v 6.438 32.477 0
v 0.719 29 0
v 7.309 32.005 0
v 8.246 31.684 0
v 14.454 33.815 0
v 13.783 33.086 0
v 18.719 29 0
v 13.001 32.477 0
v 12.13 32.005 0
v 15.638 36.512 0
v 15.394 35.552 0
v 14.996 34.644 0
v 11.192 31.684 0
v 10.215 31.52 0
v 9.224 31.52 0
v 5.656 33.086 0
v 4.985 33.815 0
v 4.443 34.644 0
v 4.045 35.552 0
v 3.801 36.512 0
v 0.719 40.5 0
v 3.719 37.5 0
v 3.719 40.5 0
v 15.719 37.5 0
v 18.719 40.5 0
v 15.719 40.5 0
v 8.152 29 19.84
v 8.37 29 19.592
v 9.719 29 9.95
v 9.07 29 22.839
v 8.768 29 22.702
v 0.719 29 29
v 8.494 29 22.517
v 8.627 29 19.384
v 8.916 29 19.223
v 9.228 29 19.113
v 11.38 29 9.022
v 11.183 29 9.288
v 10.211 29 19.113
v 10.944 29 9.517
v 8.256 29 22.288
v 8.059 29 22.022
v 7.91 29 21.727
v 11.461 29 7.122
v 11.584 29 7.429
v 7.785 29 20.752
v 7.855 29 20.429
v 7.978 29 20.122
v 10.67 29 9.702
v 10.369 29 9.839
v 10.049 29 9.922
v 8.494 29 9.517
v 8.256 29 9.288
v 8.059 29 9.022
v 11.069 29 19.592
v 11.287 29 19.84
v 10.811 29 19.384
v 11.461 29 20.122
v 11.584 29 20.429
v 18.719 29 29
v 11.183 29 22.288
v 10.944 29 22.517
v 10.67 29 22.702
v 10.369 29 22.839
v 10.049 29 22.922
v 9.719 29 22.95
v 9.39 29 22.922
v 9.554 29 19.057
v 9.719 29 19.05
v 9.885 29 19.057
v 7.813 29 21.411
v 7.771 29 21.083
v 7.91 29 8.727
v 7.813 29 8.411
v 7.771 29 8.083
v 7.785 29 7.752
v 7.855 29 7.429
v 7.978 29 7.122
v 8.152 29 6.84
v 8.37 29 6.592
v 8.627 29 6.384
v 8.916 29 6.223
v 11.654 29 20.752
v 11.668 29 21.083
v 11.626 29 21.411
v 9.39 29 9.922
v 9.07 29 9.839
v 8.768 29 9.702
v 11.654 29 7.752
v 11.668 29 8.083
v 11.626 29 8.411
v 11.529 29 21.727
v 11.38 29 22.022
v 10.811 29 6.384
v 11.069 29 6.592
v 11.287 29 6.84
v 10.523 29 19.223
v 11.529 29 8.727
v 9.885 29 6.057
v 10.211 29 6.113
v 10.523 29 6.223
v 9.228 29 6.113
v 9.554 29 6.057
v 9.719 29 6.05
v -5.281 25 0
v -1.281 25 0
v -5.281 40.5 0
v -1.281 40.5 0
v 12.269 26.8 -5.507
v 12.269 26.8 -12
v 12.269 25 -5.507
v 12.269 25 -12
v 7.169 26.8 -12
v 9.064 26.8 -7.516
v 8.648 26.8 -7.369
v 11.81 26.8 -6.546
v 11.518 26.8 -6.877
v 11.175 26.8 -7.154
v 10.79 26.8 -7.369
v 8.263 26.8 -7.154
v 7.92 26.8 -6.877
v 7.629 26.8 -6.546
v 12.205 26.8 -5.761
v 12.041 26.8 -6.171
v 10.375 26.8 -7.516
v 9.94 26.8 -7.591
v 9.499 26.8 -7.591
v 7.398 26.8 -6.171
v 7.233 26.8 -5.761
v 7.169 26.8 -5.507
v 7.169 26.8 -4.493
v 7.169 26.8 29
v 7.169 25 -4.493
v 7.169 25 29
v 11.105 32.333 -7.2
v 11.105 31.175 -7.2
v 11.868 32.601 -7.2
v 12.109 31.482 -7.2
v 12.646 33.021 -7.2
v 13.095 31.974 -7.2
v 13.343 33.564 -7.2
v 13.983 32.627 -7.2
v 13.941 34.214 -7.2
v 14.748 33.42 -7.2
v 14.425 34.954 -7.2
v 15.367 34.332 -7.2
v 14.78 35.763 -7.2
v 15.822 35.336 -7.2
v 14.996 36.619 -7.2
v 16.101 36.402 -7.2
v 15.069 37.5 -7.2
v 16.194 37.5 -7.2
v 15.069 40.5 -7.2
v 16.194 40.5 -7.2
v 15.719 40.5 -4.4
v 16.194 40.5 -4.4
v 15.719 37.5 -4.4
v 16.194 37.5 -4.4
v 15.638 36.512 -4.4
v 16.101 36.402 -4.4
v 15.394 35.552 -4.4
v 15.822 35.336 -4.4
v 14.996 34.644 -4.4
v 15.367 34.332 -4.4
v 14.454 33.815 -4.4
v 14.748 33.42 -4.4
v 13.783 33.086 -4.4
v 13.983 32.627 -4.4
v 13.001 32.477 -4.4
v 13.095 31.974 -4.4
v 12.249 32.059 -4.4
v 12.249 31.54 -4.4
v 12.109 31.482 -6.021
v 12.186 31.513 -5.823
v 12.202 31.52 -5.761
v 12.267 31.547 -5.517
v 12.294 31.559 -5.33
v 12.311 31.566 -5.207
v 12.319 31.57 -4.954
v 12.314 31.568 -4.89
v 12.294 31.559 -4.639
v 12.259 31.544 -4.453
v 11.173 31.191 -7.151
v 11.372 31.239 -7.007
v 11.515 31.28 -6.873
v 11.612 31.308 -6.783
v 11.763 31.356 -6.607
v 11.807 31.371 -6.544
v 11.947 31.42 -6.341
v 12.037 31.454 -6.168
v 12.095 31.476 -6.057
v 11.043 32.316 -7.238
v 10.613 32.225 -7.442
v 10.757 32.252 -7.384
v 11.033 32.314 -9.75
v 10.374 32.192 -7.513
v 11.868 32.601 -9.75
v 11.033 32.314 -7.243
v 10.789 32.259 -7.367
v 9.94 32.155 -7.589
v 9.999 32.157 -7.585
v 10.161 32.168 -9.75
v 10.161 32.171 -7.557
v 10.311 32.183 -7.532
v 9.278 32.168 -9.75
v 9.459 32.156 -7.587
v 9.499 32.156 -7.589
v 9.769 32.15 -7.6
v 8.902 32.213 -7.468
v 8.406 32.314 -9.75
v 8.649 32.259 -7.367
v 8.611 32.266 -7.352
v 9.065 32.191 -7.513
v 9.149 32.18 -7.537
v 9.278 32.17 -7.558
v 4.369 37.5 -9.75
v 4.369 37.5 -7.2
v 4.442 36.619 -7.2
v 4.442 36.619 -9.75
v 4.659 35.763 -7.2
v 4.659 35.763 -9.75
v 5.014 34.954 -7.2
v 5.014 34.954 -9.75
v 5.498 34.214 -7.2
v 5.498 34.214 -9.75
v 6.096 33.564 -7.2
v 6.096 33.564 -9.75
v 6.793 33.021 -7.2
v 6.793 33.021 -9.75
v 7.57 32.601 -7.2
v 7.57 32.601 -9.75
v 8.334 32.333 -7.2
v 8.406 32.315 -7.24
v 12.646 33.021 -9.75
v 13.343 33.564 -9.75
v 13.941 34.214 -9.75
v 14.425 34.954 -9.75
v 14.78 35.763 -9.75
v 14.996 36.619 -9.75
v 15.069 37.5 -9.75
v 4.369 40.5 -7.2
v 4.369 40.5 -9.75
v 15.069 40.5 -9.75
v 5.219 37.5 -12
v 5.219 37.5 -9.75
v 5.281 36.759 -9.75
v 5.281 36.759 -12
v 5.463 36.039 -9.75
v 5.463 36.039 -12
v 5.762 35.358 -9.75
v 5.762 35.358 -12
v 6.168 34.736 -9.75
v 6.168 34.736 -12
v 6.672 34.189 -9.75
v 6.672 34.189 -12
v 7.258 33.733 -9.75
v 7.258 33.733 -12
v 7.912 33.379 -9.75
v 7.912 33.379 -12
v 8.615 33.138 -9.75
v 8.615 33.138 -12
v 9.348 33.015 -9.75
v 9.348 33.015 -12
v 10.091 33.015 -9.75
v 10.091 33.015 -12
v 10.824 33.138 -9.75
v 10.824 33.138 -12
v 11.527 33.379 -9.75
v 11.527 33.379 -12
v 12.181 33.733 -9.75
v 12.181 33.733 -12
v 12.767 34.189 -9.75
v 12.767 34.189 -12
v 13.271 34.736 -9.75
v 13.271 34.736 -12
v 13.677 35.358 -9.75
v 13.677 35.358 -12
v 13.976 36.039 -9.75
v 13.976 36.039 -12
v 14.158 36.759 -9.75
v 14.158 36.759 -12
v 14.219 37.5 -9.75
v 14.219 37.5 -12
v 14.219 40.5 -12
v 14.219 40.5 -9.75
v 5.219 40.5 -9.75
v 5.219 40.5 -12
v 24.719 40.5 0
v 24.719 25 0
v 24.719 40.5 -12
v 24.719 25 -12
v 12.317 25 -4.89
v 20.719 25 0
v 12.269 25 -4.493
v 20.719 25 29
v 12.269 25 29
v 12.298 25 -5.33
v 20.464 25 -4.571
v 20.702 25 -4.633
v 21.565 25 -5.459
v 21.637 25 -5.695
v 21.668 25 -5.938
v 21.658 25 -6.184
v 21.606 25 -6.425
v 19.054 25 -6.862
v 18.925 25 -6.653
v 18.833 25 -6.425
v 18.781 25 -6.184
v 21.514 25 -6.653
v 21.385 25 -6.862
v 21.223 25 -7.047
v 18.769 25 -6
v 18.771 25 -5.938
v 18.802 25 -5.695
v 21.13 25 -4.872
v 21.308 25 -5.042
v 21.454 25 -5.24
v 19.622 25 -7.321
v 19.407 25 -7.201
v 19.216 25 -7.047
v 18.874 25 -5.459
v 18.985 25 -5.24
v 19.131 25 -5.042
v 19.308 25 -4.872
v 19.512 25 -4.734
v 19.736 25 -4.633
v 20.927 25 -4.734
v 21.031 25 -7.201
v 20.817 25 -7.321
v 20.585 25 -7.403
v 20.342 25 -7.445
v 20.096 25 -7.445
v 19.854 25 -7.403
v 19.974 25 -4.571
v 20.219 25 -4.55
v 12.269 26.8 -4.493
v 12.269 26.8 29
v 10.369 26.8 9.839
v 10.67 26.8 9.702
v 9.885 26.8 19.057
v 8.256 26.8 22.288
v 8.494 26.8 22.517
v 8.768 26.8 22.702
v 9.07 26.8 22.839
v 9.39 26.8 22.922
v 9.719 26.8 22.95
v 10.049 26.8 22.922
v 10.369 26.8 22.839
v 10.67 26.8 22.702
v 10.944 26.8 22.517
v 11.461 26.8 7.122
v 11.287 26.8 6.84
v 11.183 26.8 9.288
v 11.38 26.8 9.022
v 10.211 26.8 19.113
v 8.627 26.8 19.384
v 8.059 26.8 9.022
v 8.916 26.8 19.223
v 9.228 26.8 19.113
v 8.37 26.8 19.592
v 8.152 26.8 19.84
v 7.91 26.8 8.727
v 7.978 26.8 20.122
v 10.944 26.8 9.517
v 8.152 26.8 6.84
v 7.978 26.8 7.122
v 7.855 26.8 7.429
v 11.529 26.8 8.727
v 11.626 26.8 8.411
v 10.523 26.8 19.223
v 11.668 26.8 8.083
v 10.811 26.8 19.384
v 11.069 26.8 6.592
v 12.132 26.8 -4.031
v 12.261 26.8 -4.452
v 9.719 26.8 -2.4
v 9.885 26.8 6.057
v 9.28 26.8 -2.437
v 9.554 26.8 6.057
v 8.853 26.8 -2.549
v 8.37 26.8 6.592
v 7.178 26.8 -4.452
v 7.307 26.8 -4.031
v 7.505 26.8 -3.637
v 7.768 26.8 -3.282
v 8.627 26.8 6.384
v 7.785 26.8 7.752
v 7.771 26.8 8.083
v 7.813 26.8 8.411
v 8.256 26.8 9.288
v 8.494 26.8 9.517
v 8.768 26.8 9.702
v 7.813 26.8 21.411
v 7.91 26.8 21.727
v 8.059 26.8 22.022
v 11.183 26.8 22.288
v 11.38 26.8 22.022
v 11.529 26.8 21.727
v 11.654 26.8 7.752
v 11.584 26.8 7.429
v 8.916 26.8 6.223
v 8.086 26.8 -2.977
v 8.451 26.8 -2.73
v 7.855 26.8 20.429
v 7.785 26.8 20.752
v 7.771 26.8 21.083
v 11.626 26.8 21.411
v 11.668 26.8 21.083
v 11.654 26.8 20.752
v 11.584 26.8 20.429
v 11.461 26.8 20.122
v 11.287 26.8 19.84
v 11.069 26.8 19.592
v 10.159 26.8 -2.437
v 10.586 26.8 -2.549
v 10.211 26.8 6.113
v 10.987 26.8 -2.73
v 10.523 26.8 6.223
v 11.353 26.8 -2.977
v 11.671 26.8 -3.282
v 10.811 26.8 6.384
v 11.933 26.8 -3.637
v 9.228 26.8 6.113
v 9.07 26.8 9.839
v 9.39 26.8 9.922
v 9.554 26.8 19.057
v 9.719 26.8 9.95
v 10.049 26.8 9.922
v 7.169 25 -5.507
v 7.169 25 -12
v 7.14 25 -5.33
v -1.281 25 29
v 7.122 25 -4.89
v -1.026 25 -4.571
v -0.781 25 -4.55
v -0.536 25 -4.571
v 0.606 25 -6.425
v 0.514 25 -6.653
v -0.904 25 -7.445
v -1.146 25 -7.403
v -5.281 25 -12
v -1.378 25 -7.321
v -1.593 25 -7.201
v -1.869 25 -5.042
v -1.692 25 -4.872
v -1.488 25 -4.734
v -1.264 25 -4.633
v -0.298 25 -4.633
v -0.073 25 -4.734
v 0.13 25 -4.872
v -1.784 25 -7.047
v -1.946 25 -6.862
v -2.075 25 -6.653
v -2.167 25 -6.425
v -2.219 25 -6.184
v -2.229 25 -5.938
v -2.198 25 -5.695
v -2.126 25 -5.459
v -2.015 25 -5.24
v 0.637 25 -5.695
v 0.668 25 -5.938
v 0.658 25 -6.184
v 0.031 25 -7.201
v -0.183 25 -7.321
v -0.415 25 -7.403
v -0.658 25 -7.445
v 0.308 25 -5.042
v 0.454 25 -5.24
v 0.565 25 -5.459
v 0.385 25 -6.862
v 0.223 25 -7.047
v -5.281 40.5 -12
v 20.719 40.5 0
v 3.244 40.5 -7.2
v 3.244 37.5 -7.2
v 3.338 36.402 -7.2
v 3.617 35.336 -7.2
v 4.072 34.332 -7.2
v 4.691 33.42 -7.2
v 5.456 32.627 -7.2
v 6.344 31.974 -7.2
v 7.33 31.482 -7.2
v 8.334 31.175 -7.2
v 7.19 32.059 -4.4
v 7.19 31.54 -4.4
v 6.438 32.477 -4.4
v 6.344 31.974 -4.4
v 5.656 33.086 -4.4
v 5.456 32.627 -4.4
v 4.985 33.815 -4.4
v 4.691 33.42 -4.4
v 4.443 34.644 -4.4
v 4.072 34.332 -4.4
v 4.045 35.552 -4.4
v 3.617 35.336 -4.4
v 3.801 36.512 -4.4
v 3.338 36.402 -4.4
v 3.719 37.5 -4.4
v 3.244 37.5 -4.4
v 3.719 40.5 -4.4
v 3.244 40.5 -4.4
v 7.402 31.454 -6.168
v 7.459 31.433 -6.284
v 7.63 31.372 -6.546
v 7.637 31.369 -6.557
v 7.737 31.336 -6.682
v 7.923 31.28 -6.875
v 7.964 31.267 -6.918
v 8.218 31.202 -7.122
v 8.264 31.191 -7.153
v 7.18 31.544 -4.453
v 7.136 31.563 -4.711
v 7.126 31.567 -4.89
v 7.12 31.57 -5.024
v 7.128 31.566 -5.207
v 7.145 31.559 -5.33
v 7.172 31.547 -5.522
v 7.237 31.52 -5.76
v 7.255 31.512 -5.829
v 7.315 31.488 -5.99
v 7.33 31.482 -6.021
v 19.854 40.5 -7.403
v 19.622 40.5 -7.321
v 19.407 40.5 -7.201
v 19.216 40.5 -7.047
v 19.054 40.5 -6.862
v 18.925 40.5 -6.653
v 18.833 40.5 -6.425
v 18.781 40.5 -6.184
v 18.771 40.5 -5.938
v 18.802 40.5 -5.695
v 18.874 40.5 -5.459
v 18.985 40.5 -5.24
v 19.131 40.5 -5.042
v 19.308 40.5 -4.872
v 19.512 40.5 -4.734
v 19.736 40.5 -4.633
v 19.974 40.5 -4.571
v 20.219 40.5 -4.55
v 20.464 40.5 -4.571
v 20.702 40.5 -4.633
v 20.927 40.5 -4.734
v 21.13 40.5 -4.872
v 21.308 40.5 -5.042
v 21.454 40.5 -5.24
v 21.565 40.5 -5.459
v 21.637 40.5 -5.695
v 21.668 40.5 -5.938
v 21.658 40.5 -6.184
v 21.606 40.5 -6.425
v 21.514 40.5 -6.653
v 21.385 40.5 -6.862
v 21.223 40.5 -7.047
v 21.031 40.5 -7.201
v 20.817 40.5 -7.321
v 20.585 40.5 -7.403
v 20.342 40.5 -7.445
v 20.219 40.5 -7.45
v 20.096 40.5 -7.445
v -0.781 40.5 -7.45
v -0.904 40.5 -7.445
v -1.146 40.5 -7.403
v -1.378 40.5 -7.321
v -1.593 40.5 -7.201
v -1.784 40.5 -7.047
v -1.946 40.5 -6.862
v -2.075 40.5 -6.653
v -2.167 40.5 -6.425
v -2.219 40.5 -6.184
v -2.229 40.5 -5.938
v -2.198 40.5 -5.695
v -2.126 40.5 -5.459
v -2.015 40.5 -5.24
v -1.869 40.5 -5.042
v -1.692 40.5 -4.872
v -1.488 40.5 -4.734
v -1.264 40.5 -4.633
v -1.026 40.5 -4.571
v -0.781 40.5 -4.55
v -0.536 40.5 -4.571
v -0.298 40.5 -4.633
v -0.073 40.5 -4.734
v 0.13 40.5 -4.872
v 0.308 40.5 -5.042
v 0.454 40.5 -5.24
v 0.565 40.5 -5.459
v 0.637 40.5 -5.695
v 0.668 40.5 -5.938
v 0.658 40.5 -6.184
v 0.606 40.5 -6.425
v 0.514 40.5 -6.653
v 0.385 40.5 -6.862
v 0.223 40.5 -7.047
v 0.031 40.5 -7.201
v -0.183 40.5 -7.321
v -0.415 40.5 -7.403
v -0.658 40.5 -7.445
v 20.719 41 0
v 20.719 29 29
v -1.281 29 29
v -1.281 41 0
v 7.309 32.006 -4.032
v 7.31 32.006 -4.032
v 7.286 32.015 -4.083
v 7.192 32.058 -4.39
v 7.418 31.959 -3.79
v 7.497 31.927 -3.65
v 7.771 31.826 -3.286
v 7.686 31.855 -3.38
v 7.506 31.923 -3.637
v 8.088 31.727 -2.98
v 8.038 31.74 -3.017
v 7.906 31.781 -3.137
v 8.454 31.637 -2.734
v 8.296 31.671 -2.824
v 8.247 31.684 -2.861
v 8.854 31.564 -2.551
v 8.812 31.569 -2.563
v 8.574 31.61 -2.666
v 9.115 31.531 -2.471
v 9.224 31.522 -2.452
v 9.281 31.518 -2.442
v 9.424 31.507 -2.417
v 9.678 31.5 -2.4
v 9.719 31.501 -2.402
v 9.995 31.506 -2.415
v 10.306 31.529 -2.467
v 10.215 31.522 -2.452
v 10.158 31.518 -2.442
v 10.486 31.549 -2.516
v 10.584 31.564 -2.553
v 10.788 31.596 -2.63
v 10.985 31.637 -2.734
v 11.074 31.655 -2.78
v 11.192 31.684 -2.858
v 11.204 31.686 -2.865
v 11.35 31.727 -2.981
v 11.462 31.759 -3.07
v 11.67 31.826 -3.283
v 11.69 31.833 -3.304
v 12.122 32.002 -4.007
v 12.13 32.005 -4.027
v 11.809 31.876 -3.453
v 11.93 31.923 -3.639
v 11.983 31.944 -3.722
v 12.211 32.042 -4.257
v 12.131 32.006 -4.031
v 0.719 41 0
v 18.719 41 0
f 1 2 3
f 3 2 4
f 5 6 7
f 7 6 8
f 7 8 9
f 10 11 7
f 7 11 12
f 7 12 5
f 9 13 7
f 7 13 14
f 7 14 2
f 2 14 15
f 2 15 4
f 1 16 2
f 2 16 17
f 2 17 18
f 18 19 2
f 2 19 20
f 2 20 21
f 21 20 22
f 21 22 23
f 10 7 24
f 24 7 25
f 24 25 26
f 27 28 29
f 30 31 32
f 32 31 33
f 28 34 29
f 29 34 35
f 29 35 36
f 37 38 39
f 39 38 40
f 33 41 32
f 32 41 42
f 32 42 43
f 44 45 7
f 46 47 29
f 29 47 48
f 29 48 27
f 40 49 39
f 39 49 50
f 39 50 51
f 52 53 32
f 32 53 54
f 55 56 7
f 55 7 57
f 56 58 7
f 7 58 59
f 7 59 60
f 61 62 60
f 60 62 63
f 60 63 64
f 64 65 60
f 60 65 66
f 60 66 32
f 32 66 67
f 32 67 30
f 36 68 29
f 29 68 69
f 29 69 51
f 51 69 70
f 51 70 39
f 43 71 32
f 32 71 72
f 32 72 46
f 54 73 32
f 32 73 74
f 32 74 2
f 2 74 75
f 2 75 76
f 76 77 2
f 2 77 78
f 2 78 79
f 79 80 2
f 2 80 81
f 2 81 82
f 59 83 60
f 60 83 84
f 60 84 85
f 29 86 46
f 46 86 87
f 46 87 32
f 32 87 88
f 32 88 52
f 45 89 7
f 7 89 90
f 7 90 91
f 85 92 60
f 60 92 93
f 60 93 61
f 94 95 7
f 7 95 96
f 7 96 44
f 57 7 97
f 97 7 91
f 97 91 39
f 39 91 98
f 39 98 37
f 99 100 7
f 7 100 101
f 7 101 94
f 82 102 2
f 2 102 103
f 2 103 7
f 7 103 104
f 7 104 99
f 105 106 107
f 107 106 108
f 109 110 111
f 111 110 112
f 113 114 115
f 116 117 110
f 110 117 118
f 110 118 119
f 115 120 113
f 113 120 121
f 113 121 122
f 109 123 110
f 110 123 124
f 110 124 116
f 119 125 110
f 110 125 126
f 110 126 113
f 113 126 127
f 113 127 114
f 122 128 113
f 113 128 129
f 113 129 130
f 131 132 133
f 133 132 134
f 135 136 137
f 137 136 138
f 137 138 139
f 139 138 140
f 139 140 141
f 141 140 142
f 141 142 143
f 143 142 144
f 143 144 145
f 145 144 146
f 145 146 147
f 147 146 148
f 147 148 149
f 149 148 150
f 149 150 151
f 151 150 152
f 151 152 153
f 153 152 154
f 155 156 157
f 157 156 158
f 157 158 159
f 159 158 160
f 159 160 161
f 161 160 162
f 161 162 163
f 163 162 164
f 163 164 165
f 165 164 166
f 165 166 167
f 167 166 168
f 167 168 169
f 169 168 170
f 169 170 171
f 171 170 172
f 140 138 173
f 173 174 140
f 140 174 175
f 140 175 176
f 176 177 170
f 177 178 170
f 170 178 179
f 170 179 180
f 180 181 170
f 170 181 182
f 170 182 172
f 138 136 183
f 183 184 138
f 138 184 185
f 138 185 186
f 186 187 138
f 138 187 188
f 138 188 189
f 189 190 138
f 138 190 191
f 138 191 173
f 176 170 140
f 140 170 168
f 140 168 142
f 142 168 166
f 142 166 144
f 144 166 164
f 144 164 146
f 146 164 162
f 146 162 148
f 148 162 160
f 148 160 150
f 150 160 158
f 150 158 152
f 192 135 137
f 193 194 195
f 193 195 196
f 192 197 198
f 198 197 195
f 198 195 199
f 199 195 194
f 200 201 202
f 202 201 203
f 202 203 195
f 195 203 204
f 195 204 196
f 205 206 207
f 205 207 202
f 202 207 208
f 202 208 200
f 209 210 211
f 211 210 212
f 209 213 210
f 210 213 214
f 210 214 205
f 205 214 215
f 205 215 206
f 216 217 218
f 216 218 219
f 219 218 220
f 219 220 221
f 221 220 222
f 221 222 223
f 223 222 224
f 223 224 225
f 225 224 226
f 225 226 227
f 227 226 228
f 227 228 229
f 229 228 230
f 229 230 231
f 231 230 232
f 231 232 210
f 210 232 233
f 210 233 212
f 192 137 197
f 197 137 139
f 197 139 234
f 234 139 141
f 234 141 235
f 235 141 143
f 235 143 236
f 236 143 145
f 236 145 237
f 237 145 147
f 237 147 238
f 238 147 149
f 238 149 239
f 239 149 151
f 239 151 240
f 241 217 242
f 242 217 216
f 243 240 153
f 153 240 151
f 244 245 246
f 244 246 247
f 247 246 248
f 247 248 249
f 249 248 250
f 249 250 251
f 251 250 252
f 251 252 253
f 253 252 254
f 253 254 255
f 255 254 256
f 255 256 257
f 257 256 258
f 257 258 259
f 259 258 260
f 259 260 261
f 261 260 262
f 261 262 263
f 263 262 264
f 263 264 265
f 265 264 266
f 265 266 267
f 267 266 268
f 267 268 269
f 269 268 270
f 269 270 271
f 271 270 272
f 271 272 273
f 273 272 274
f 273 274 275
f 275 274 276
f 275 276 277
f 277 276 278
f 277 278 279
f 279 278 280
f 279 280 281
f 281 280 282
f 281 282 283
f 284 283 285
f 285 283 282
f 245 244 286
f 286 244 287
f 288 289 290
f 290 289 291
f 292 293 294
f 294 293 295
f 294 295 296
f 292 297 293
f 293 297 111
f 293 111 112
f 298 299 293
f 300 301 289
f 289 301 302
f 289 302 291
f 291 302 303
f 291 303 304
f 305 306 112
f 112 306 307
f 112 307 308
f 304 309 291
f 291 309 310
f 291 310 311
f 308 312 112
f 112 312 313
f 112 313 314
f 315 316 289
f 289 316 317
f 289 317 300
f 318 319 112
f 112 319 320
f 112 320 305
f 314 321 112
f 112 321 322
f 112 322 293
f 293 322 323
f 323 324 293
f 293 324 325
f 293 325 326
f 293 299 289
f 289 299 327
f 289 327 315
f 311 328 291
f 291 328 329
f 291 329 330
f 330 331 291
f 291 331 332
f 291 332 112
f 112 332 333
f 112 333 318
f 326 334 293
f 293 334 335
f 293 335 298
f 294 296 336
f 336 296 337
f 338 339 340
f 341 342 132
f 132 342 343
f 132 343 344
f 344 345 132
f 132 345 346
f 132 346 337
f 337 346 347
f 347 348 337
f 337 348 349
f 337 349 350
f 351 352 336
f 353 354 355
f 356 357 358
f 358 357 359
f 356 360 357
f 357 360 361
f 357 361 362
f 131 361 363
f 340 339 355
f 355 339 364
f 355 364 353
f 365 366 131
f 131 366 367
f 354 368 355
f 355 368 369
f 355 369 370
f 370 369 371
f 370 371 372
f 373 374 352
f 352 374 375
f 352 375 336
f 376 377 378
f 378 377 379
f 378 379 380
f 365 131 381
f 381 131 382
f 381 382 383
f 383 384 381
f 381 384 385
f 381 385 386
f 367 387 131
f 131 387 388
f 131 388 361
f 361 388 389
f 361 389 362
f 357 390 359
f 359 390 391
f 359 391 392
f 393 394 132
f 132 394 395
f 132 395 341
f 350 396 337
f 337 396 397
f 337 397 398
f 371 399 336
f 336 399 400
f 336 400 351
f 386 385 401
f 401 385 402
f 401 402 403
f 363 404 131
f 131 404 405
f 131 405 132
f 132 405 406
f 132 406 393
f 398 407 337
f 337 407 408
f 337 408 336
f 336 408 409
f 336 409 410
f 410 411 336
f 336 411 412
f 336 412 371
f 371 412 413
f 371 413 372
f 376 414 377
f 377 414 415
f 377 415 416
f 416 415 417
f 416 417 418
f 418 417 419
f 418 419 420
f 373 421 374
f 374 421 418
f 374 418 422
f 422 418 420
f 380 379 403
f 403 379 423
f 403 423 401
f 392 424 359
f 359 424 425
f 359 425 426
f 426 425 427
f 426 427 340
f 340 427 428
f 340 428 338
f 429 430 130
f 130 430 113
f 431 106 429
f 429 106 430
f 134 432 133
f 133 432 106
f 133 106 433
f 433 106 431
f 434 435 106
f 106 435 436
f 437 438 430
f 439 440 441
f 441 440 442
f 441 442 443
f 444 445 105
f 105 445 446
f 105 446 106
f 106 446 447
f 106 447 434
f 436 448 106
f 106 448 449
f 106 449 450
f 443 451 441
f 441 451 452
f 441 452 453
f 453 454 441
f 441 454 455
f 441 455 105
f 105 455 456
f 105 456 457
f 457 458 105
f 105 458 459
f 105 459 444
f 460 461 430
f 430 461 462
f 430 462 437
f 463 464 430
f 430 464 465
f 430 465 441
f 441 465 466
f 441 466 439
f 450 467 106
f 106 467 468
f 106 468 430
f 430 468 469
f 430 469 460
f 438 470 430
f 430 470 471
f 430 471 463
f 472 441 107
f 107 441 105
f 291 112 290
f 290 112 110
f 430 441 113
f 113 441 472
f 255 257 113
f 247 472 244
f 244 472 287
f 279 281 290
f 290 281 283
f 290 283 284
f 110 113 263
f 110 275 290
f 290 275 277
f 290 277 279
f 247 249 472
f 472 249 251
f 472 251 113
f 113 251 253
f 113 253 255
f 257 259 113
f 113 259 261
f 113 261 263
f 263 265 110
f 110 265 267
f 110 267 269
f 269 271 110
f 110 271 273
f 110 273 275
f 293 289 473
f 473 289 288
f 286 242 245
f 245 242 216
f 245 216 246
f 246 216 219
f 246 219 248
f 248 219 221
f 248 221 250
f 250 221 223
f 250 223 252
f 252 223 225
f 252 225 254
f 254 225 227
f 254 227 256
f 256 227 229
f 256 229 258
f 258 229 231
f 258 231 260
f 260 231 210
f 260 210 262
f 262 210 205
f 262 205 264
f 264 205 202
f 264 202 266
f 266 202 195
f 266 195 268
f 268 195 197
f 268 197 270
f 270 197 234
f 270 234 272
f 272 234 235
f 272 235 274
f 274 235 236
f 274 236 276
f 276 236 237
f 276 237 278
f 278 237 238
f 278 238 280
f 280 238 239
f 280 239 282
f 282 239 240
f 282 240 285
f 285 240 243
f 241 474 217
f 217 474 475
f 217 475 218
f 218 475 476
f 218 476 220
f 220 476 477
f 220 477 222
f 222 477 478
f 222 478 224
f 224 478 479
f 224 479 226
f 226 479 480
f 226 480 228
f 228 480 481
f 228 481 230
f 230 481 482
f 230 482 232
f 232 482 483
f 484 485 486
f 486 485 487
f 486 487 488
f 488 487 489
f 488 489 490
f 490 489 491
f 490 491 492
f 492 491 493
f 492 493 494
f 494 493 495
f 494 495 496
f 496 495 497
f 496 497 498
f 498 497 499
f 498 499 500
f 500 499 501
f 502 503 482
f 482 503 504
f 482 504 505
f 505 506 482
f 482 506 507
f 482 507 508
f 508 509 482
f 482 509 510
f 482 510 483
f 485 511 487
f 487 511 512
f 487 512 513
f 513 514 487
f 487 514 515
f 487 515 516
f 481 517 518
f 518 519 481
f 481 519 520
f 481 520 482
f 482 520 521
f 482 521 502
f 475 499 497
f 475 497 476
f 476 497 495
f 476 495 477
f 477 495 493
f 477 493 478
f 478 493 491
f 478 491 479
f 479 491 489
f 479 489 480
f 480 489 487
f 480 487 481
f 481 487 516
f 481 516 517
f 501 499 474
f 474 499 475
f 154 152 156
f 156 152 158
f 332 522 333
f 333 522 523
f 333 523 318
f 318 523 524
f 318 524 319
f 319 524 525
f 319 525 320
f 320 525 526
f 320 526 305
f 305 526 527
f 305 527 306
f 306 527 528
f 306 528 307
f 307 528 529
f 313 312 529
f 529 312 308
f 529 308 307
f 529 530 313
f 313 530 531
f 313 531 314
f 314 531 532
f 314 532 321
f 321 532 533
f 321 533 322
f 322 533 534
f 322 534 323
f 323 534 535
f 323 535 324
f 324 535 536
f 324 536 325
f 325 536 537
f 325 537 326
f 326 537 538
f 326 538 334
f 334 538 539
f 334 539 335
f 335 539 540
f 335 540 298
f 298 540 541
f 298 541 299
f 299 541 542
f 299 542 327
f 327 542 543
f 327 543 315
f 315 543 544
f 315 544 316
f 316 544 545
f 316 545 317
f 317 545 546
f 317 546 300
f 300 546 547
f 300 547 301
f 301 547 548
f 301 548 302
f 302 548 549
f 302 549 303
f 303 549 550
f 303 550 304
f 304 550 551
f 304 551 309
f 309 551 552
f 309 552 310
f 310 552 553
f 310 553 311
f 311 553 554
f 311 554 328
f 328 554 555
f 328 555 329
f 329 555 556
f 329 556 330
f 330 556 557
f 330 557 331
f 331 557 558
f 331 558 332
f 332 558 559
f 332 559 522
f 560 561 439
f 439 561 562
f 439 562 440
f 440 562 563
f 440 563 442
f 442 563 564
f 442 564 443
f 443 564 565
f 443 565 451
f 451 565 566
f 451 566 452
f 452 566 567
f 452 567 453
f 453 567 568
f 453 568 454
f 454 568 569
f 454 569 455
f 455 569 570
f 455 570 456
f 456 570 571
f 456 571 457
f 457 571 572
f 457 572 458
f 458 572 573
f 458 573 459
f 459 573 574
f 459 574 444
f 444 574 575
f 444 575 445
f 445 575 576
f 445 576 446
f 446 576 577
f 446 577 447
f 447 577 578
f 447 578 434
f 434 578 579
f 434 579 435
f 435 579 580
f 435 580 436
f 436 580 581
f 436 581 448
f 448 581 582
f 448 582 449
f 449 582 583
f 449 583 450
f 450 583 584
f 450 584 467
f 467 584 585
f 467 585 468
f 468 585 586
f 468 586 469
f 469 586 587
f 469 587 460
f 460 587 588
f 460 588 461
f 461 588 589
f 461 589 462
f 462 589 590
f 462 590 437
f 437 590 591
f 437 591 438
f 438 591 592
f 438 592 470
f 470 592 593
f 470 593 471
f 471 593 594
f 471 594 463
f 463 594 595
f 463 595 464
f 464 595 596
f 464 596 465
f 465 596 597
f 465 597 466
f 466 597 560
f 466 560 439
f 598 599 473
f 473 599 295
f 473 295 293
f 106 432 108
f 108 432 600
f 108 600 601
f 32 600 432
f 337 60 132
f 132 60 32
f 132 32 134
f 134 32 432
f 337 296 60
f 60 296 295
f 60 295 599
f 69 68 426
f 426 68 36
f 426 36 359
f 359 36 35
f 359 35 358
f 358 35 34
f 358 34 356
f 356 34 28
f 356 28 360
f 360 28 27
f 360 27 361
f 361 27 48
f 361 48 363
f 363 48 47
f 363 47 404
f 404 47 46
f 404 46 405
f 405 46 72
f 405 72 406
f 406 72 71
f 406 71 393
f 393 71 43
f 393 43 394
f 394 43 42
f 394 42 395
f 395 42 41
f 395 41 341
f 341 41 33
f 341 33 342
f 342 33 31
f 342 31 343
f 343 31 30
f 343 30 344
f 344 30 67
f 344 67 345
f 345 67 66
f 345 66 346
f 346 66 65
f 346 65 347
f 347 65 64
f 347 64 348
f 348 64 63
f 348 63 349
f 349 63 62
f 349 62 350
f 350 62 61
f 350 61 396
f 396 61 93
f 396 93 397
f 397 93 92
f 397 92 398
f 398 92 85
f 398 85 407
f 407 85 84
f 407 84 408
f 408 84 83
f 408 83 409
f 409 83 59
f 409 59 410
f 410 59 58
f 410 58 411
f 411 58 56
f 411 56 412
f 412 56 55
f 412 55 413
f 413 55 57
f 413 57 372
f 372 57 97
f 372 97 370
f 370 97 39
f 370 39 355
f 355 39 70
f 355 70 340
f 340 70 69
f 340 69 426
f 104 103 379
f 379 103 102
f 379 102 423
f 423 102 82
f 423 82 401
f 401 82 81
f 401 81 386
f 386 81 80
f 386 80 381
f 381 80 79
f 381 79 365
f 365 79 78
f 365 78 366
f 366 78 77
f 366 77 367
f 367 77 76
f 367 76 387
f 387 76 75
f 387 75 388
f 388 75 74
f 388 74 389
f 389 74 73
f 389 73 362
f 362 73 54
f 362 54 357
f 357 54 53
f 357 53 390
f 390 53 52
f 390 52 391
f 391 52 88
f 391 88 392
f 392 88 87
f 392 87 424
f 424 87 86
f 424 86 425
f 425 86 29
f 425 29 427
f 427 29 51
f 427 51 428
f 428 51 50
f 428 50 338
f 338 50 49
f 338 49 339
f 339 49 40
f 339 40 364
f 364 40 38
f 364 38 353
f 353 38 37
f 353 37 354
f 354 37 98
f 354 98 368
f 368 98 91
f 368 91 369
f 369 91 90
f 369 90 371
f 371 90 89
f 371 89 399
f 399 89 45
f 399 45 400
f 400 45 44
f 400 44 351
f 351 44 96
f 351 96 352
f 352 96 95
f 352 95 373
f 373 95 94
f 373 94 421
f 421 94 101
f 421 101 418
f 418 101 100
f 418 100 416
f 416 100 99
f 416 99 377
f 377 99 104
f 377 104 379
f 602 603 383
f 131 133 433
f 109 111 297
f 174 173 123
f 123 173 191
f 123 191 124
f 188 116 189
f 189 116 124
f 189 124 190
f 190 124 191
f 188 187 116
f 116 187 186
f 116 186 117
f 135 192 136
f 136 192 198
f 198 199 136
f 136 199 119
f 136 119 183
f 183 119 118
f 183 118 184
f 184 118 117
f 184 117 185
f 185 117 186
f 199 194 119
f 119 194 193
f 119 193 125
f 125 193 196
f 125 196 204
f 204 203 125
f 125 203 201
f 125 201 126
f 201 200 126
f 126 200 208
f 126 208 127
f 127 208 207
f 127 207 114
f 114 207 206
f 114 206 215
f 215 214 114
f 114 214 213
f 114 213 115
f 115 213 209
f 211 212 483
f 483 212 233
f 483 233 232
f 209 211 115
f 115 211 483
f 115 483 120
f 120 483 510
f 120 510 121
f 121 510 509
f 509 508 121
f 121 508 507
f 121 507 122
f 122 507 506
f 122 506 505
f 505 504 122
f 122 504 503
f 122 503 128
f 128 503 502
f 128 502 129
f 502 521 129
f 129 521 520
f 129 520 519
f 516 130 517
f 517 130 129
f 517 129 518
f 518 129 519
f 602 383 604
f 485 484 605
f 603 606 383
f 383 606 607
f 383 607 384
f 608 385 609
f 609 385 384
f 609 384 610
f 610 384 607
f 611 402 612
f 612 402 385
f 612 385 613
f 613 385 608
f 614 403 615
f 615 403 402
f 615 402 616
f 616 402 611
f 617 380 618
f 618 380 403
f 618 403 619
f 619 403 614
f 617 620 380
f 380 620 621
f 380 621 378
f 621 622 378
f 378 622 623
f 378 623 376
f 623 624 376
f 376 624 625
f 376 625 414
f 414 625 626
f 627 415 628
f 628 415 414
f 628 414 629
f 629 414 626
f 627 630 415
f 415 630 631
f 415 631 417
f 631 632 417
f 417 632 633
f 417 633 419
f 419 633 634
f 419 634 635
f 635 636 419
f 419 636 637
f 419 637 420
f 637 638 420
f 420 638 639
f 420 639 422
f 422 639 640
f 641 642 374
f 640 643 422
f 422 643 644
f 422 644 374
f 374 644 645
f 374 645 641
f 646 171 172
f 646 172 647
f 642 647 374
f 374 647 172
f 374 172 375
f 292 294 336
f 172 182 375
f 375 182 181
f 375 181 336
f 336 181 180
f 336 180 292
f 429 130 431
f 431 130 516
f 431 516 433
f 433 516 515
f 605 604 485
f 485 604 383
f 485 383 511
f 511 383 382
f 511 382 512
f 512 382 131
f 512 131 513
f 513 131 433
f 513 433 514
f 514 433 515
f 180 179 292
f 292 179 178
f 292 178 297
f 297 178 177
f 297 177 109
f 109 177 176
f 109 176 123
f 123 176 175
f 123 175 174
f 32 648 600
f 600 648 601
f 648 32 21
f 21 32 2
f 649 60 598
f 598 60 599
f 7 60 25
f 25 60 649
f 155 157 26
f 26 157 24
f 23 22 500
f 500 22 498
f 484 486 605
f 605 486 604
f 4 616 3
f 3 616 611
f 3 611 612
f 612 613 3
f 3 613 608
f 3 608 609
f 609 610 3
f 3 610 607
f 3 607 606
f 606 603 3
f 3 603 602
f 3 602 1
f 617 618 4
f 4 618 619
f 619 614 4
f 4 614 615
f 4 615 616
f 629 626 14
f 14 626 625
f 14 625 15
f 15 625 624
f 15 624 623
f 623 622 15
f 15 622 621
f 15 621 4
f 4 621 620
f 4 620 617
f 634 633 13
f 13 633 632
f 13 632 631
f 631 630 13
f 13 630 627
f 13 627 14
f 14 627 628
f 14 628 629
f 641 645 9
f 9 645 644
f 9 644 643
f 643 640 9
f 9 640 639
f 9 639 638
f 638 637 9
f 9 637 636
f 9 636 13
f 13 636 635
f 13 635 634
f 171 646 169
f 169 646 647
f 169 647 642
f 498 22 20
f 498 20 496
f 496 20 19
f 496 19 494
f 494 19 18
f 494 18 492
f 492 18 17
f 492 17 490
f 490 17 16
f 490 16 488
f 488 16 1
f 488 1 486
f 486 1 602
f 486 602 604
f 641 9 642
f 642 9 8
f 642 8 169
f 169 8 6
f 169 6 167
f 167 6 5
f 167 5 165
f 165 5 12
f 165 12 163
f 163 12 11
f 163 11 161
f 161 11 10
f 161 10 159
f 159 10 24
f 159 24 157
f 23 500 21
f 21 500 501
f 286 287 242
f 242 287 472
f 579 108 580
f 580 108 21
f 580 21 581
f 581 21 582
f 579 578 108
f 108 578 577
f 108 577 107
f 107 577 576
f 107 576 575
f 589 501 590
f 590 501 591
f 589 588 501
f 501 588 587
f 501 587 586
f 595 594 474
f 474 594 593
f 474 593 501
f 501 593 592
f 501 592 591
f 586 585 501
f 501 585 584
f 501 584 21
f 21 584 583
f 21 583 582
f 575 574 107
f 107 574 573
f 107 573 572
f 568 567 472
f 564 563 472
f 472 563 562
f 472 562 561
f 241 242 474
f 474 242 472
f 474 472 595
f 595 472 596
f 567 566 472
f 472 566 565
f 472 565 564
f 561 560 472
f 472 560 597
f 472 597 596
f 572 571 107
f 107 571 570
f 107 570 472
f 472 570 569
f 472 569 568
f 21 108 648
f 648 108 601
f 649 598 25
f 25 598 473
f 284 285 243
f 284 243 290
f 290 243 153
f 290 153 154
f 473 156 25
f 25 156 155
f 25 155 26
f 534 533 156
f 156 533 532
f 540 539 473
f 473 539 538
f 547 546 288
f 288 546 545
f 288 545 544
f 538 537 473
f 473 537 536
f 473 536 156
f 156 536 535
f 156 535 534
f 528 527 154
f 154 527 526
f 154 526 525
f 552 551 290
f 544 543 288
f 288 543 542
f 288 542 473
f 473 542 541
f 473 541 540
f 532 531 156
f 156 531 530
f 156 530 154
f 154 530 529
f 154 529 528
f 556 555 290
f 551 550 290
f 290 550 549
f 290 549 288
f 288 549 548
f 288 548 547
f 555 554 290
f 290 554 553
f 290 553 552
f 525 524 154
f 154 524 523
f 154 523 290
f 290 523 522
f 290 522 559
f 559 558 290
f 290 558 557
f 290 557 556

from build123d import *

# Parameters (mm, degrees)
BOSS_EXTRUDE1_DEPTH = 12
CUT_EXTRUDE1_DEPTH  = 9.75
CUT_EXTRUDE4_START  = -4.4
CUT_EXTRUDE4_DEPTH  = 2.8
SKETCH3_R           = 1.45
CUT_EXTRUDE2_DEPTH  = 18
BOSS_EXTRUDE2_DEPTH = 29
SKETCH5_R           = 1.95
SKETCH5_R_2         = 2.6
CUT_EXTRUDE3_DEPTH  = 14.5
BOSS_EXTRUDE3_DEPTH = 2
BOSS_EXTRUDE4_START = -22
BOSS_EXTRUDE4_DEPTH = 2
CUT_EXTRUDE5_DEPTH  = 5.2
SKETCH9_W           = 30
SKETCH9_H           = 12
CUT_EXTRUDE6_DEPTH  = 0.5


with BuildPart() as part:
    # Sketch1 → Boss-Extrude1 (new body)
    with BuildSketch(Plane.XY):
        with BuildLine():
            Line((-5.280588843, 25), (-5.280588843, 41))
            Line((-5.280588843, 41), (5.219411157, 41))
            Line((5.219411157, 41), (5.219411157, 37.5))
            ThreePointArc((5.219411157, 37.5), (9.719411157, 33), (14.219411157, 37.5))
            Line((14.219411157, 37.5), (14.219411157, 41))
            Line((14.219411157, 41), (24.719411157, 41))
            Line((24.719411157, 41), (24.719411157, 25))
            Line((24.719411157, 25), (12.269411157, 25))
            Line((12.269411157, 25), (12.269411157, 26.8))
            Line((12.269411157, 26.8), (7.169411157, 26.8))
            Line((7.169411157, 26.8), (7.169411157, 25))
            Line((7.169411157, 25), (-5.280588843, 25))
        make_face()
    extrude(amount=-BOSS_EXTRUDE1_DEPTH)

    # Sketch2 → Cut-Extrude1 (cut)
    with BuildSketch(Plane.XY):
        with BuildLine():
            Line((4.369411157, 37.5), (4.369411157, 41))
            Line((4.369411157, 41), (15.069411157, 41))
            Line((15.069411157, 41), (15.069411157, 37.5))
            ThreePointArc((15.069411157, 37.5), (9.719411157, 32.15), (4.369411157, 37.5))
        make_face()
    extrude(amount=-CUT_EXTRUDE1_DEPTH, mode=Mode.SUBTRACT)

    # Sketch7 → Cut-Extrude4 (cut)
    with BuildSketch(Plane.XY.offset(CUT_EXTRUDE4_START)):
        with BuildLine():
            Line((3.244411157, 37.5), (3.244411157, 41))
            Line((3.244411157, 41), (16.194411157, 41))
            Line((16.194411157, 41), (16.194411157, 37.5))
            ThreePointArc((16.194411157, 37.5), (9.719411157, 31.025), (3.244411157, 37.5))
        make_face()
    extrude(amount=-CUT_EXTRUDE4_DEPTH, mode=Mode.SUBTRACT)

    # Sketch3 → Cut-Extrude2 (cut)
    with BuildSketch(Plane(origin=(0, 41, 0), x_dir=(1, 0, 0), z_dir=(0, 1, 0))):
        with Locations((20.219411157, 6)):
            Circle(SKETCH3_R)
        with Locations((-0.780588843, 6)):
            Circle(SKETCH3_R)
    extrude(amount=-CUT_EXTRUDE2_DEPTH, mode=Mode.SUBTRACT)

    # Sketch4 → Boss-Extrude2 (add)
    with BuildSketch(Plane.XY):
        Polygon((-1.280588843, 25), (-1.280588843, 29), (20.719411157, 29), (20.719411157, 25), (12.269411157, 25), (12.269411157, 26.8), (7.169411157, 26.8), (7.169411157, 25), align=None)
    extrude(amount=BOSS_EXTRUDE2_DEPTH)

    # Sketch5 → Cut-Extrude3 (cut, symmetric)
    with BuildSketch(Plane(origin=(0, 29, 0), x_dir=(1, 0, 0), z_dir=(0, 1, 0))):
        with Locations((9.719411157, -21)):
            Circle(SKETCH5_R)
        with Locations((9.719411157, -8)):
            Circle(SKETCH5_R)
        with Locations((9.719411157, 5)):
            Circle(SKETCH5_R_2)
    extrude(amount=CUT_EXTRUDE3_DEPTH, both=True, mode=Mode.SUBTRACT)

    # Sketch6 → Boss-Extrude3 (add)
    with BuildSketch(Plane.ZY.offset(1.280588843)):
        Polygon((29, 29), (0, 41), (0, 29), align=None)
    extrude(amount=-BOSS_EXTRUDE3_DEPTH)

    # Sketch6<2> → Boss-Extrude4 (add)
    with BuildSketch(Plane.ZY.offset(1.280588843).offset(BOSS_EXTRUDE4_START)):
        Polygon((29, 29), (0, 41), (0, 29), align=None)
    extrude(amount=BOSS_EXTRUDE4_DEPTH)

    # Sketch8 → Cut-Extrude5 (cut)
    with BuildSketch(Plane.XY):
        with BuildLine():
            Line((3.719411157, 37.5), (3.719411157, 41))
            Line((3.719411157, 41), (15.719411157, 41))
            Line((15.719411157, 41), (15.719411157, 37.5))
            ThreePointArc((15.719411157, 37.5), (9.719411157, 31.5), (3.719411157, 37.5))
        make_face()
    extrude(amount=-CUT_EXTRUDE5_DEPTH, mode=Mode.SUBTRACT)

    # Sketch9 → Cut-Extrude6 (cut)
    with BuildSketch(Plane(origin=(0, 41, 0), x_dir=(1, 0, 0), z_dir=(0, 1, 0))):
        with Locations((9.719411157, 6)):
            Rectangle(SKETCH9_W, SKETCH9_H)
    extrude(amount=-CUT_EXTRUDE6_DEPTH, mode=Mode.SUBTRACT)


solid = part.part
